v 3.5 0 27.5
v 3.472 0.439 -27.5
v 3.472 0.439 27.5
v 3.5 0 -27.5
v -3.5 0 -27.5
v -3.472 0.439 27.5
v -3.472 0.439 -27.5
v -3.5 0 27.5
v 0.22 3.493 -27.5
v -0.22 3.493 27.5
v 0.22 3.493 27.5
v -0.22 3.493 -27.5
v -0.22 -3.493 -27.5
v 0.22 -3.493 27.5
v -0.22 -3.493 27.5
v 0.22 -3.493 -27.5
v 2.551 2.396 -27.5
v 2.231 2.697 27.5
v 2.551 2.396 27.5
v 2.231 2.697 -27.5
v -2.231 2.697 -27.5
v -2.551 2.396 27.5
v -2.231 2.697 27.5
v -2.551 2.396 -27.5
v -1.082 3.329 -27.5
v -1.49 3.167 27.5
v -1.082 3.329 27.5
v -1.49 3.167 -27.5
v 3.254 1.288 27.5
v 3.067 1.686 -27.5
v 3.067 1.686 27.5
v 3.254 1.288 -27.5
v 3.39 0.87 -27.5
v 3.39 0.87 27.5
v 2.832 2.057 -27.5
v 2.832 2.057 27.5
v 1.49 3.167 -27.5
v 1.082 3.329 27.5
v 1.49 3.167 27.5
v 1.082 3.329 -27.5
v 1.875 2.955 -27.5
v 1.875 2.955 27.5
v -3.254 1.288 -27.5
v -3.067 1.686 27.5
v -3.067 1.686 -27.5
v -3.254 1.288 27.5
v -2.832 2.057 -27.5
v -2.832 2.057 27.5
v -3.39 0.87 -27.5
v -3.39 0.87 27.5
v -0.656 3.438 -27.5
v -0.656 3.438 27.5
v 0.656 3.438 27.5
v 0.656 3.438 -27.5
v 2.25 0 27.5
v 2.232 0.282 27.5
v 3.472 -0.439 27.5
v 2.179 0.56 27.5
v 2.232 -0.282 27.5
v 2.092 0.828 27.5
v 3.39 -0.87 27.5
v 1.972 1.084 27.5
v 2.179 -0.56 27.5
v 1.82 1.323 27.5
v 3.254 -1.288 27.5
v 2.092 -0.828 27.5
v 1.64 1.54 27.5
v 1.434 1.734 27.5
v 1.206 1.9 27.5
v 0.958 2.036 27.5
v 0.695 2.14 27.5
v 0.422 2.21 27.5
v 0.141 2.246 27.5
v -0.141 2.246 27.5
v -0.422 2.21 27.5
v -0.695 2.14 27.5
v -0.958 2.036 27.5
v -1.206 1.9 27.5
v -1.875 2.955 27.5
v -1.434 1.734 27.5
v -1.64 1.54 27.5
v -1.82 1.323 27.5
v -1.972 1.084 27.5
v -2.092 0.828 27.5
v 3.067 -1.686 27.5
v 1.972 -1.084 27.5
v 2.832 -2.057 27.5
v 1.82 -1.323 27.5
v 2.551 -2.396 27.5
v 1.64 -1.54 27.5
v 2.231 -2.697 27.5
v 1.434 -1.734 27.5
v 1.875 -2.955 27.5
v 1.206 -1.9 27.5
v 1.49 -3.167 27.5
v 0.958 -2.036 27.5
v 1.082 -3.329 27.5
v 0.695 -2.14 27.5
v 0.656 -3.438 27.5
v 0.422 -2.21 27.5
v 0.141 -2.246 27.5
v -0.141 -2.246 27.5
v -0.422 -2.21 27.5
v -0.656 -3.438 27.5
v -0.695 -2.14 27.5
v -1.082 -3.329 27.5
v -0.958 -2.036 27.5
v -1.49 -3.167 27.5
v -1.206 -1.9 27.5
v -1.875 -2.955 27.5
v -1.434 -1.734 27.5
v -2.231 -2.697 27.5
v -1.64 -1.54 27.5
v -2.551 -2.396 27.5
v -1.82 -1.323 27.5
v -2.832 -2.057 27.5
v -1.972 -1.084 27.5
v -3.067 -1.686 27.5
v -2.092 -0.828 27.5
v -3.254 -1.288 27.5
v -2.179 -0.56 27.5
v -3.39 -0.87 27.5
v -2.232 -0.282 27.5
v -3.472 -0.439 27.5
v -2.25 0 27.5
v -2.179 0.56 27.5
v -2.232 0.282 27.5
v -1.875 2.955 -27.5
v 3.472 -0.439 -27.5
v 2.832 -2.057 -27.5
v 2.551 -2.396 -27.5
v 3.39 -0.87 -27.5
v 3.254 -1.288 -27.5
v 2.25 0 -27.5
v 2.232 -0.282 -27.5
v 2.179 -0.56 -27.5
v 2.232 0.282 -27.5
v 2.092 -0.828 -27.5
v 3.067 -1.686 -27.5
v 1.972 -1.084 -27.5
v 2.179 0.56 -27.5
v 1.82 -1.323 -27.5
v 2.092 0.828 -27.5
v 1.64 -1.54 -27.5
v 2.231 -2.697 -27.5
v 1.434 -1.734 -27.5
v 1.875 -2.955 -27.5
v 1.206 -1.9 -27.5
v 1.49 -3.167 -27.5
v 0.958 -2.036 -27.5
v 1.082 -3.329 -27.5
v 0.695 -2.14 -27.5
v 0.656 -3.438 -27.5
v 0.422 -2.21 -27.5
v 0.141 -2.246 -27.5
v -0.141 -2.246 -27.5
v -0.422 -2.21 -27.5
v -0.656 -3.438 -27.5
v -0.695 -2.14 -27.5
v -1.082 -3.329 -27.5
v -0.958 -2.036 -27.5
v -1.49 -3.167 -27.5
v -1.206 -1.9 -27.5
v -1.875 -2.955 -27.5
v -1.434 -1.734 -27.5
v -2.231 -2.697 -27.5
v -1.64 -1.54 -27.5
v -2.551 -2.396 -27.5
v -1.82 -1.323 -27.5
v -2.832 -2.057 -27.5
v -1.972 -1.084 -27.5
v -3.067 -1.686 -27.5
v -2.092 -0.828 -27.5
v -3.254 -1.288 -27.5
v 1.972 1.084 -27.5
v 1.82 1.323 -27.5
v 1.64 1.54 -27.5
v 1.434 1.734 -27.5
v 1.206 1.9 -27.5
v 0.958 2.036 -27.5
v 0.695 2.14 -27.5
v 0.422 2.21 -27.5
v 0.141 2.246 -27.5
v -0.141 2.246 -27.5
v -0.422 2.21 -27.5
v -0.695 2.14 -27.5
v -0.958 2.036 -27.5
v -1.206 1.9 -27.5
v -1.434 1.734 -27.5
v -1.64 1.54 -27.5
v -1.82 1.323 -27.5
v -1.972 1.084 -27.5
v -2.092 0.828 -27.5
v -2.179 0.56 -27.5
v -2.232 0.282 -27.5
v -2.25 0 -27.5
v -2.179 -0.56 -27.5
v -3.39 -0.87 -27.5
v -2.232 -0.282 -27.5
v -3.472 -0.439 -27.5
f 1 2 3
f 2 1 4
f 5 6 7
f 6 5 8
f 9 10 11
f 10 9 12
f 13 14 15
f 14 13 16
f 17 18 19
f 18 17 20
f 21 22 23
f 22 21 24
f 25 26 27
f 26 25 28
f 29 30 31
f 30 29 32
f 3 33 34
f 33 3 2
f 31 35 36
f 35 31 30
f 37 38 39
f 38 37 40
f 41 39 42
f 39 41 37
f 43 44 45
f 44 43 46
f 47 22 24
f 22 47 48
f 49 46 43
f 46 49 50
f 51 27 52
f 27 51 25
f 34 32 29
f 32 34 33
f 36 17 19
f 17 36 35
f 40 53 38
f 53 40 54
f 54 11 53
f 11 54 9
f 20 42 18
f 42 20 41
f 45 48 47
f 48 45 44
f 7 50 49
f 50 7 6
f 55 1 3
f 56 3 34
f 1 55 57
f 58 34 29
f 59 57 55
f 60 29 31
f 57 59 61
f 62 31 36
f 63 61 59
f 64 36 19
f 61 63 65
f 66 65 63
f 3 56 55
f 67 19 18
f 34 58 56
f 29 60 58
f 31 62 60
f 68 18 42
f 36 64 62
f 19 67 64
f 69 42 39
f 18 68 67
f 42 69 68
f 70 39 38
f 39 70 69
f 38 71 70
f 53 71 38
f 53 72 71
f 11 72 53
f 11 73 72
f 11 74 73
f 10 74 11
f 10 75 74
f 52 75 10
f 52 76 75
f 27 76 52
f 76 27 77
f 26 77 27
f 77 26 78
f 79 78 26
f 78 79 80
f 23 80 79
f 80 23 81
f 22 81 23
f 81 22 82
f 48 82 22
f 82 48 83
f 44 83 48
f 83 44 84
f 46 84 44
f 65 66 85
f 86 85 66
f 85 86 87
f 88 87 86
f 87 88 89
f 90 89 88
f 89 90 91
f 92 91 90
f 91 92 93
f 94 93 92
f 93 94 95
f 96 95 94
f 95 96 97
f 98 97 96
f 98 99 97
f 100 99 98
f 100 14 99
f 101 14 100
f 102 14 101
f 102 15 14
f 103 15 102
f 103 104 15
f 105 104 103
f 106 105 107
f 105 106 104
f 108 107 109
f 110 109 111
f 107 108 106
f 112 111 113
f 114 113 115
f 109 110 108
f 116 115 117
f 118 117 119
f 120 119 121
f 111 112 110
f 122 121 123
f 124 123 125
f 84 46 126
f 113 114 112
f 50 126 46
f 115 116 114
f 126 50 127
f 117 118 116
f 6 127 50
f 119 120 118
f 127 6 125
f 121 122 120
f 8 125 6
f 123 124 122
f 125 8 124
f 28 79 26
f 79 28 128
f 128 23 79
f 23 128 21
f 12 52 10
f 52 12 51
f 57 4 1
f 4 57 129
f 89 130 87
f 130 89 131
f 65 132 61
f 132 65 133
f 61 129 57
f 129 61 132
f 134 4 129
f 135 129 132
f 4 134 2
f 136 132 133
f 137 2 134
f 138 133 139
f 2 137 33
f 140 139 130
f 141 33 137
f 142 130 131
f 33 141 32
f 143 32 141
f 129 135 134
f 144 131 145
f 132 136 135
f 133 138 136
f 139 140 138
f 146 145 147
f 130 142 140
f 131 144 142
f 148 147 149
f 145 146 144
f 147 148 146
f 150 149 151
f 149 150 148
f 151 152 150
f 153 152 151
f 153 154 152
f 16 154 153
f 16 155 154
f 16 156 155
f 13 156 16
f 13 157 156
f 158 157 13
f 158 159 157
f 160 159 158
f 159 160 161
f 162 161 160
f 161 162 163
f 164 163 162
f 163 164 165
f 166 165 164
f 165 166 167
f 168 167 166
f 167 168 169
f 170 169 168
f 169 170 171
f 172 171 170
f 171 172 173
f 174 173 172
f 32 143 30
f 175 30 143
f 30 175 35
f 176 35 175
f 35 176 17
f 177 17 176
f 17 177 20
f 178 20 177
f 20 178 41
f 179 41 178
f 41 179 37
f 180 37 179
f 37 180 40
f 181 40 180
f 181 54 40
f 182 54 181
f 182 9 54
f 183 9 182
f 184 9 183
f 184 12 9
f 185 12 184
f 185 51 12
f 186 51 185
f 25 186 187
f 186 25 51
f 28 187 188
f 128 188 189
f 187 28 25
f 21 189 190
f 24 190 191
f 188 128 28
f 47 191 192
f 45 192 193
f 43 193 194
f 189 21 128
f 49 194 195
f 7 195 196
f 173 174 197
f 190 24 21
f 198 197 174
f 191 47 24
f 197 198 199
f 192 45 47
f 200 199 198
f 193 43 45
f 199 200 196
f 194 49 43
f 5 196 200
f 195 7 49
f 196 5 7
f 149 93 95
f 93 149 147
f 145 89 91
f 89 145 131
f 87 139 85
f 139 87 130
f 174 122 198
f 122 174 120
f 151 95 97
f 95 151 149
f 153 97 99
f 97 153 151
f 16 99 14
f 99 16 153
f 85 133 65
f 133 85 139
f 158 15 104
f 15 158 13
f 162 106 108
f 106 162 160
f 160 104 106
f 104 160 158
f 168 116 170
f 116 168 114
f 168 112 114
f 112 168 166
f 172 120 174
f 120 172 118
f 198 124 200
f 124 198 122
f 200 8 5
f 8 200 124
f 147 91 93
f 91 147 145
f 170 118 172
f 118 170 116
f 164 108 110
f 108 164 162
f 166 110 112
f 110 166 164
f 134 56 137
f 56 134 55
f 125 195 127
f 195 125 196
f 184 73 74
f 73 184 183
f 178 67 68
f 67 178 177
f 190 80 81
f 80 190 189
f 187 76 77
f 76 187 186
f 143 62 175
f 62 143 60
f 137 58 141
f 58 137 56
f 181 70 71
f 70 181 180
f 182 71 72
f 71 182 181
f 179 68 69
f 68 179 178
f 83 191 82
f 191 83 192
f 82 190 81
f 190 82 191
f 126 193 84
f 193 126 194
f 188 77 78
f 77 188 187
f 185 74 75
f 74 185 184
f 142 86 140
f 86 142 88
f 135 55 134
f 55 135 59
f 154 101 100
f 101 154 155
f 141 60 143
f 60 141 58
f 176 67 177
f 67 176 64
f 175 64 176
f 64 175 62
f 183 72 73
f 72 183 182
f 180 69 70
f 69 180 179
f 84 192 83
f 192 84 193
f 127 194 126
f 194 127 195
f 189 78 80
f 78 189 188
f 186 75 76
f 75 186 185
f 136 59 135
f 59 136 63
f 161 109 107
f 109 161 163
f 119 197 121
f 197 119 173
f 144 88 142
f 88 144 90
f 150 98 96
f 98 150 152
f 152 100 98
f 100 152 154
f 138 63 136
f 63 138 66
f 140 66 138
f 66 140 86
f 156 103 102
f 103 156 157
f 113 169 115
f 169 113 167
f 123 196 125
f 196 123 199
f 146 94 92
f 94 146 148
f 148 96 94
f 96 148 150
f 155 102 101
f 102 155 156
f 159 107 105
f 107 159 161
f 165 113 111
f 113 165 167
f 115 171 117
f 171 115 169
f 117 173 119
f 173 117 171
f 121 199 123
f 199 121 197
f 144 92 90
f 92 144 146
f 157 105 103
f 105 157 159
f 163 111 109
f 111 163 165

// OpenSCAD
$fn = 50;


difference() {
	union() {
		translate(v = [0, 0, -27.5000000000]) {
			cylinder(h = 55, r = 3.5000000000);
		}
	}
	union() {
		translate(v = [0, 0, -100.0000000000]) {
			cylinder(h = 200, r = 2.2500000000);
		}
	}
}
